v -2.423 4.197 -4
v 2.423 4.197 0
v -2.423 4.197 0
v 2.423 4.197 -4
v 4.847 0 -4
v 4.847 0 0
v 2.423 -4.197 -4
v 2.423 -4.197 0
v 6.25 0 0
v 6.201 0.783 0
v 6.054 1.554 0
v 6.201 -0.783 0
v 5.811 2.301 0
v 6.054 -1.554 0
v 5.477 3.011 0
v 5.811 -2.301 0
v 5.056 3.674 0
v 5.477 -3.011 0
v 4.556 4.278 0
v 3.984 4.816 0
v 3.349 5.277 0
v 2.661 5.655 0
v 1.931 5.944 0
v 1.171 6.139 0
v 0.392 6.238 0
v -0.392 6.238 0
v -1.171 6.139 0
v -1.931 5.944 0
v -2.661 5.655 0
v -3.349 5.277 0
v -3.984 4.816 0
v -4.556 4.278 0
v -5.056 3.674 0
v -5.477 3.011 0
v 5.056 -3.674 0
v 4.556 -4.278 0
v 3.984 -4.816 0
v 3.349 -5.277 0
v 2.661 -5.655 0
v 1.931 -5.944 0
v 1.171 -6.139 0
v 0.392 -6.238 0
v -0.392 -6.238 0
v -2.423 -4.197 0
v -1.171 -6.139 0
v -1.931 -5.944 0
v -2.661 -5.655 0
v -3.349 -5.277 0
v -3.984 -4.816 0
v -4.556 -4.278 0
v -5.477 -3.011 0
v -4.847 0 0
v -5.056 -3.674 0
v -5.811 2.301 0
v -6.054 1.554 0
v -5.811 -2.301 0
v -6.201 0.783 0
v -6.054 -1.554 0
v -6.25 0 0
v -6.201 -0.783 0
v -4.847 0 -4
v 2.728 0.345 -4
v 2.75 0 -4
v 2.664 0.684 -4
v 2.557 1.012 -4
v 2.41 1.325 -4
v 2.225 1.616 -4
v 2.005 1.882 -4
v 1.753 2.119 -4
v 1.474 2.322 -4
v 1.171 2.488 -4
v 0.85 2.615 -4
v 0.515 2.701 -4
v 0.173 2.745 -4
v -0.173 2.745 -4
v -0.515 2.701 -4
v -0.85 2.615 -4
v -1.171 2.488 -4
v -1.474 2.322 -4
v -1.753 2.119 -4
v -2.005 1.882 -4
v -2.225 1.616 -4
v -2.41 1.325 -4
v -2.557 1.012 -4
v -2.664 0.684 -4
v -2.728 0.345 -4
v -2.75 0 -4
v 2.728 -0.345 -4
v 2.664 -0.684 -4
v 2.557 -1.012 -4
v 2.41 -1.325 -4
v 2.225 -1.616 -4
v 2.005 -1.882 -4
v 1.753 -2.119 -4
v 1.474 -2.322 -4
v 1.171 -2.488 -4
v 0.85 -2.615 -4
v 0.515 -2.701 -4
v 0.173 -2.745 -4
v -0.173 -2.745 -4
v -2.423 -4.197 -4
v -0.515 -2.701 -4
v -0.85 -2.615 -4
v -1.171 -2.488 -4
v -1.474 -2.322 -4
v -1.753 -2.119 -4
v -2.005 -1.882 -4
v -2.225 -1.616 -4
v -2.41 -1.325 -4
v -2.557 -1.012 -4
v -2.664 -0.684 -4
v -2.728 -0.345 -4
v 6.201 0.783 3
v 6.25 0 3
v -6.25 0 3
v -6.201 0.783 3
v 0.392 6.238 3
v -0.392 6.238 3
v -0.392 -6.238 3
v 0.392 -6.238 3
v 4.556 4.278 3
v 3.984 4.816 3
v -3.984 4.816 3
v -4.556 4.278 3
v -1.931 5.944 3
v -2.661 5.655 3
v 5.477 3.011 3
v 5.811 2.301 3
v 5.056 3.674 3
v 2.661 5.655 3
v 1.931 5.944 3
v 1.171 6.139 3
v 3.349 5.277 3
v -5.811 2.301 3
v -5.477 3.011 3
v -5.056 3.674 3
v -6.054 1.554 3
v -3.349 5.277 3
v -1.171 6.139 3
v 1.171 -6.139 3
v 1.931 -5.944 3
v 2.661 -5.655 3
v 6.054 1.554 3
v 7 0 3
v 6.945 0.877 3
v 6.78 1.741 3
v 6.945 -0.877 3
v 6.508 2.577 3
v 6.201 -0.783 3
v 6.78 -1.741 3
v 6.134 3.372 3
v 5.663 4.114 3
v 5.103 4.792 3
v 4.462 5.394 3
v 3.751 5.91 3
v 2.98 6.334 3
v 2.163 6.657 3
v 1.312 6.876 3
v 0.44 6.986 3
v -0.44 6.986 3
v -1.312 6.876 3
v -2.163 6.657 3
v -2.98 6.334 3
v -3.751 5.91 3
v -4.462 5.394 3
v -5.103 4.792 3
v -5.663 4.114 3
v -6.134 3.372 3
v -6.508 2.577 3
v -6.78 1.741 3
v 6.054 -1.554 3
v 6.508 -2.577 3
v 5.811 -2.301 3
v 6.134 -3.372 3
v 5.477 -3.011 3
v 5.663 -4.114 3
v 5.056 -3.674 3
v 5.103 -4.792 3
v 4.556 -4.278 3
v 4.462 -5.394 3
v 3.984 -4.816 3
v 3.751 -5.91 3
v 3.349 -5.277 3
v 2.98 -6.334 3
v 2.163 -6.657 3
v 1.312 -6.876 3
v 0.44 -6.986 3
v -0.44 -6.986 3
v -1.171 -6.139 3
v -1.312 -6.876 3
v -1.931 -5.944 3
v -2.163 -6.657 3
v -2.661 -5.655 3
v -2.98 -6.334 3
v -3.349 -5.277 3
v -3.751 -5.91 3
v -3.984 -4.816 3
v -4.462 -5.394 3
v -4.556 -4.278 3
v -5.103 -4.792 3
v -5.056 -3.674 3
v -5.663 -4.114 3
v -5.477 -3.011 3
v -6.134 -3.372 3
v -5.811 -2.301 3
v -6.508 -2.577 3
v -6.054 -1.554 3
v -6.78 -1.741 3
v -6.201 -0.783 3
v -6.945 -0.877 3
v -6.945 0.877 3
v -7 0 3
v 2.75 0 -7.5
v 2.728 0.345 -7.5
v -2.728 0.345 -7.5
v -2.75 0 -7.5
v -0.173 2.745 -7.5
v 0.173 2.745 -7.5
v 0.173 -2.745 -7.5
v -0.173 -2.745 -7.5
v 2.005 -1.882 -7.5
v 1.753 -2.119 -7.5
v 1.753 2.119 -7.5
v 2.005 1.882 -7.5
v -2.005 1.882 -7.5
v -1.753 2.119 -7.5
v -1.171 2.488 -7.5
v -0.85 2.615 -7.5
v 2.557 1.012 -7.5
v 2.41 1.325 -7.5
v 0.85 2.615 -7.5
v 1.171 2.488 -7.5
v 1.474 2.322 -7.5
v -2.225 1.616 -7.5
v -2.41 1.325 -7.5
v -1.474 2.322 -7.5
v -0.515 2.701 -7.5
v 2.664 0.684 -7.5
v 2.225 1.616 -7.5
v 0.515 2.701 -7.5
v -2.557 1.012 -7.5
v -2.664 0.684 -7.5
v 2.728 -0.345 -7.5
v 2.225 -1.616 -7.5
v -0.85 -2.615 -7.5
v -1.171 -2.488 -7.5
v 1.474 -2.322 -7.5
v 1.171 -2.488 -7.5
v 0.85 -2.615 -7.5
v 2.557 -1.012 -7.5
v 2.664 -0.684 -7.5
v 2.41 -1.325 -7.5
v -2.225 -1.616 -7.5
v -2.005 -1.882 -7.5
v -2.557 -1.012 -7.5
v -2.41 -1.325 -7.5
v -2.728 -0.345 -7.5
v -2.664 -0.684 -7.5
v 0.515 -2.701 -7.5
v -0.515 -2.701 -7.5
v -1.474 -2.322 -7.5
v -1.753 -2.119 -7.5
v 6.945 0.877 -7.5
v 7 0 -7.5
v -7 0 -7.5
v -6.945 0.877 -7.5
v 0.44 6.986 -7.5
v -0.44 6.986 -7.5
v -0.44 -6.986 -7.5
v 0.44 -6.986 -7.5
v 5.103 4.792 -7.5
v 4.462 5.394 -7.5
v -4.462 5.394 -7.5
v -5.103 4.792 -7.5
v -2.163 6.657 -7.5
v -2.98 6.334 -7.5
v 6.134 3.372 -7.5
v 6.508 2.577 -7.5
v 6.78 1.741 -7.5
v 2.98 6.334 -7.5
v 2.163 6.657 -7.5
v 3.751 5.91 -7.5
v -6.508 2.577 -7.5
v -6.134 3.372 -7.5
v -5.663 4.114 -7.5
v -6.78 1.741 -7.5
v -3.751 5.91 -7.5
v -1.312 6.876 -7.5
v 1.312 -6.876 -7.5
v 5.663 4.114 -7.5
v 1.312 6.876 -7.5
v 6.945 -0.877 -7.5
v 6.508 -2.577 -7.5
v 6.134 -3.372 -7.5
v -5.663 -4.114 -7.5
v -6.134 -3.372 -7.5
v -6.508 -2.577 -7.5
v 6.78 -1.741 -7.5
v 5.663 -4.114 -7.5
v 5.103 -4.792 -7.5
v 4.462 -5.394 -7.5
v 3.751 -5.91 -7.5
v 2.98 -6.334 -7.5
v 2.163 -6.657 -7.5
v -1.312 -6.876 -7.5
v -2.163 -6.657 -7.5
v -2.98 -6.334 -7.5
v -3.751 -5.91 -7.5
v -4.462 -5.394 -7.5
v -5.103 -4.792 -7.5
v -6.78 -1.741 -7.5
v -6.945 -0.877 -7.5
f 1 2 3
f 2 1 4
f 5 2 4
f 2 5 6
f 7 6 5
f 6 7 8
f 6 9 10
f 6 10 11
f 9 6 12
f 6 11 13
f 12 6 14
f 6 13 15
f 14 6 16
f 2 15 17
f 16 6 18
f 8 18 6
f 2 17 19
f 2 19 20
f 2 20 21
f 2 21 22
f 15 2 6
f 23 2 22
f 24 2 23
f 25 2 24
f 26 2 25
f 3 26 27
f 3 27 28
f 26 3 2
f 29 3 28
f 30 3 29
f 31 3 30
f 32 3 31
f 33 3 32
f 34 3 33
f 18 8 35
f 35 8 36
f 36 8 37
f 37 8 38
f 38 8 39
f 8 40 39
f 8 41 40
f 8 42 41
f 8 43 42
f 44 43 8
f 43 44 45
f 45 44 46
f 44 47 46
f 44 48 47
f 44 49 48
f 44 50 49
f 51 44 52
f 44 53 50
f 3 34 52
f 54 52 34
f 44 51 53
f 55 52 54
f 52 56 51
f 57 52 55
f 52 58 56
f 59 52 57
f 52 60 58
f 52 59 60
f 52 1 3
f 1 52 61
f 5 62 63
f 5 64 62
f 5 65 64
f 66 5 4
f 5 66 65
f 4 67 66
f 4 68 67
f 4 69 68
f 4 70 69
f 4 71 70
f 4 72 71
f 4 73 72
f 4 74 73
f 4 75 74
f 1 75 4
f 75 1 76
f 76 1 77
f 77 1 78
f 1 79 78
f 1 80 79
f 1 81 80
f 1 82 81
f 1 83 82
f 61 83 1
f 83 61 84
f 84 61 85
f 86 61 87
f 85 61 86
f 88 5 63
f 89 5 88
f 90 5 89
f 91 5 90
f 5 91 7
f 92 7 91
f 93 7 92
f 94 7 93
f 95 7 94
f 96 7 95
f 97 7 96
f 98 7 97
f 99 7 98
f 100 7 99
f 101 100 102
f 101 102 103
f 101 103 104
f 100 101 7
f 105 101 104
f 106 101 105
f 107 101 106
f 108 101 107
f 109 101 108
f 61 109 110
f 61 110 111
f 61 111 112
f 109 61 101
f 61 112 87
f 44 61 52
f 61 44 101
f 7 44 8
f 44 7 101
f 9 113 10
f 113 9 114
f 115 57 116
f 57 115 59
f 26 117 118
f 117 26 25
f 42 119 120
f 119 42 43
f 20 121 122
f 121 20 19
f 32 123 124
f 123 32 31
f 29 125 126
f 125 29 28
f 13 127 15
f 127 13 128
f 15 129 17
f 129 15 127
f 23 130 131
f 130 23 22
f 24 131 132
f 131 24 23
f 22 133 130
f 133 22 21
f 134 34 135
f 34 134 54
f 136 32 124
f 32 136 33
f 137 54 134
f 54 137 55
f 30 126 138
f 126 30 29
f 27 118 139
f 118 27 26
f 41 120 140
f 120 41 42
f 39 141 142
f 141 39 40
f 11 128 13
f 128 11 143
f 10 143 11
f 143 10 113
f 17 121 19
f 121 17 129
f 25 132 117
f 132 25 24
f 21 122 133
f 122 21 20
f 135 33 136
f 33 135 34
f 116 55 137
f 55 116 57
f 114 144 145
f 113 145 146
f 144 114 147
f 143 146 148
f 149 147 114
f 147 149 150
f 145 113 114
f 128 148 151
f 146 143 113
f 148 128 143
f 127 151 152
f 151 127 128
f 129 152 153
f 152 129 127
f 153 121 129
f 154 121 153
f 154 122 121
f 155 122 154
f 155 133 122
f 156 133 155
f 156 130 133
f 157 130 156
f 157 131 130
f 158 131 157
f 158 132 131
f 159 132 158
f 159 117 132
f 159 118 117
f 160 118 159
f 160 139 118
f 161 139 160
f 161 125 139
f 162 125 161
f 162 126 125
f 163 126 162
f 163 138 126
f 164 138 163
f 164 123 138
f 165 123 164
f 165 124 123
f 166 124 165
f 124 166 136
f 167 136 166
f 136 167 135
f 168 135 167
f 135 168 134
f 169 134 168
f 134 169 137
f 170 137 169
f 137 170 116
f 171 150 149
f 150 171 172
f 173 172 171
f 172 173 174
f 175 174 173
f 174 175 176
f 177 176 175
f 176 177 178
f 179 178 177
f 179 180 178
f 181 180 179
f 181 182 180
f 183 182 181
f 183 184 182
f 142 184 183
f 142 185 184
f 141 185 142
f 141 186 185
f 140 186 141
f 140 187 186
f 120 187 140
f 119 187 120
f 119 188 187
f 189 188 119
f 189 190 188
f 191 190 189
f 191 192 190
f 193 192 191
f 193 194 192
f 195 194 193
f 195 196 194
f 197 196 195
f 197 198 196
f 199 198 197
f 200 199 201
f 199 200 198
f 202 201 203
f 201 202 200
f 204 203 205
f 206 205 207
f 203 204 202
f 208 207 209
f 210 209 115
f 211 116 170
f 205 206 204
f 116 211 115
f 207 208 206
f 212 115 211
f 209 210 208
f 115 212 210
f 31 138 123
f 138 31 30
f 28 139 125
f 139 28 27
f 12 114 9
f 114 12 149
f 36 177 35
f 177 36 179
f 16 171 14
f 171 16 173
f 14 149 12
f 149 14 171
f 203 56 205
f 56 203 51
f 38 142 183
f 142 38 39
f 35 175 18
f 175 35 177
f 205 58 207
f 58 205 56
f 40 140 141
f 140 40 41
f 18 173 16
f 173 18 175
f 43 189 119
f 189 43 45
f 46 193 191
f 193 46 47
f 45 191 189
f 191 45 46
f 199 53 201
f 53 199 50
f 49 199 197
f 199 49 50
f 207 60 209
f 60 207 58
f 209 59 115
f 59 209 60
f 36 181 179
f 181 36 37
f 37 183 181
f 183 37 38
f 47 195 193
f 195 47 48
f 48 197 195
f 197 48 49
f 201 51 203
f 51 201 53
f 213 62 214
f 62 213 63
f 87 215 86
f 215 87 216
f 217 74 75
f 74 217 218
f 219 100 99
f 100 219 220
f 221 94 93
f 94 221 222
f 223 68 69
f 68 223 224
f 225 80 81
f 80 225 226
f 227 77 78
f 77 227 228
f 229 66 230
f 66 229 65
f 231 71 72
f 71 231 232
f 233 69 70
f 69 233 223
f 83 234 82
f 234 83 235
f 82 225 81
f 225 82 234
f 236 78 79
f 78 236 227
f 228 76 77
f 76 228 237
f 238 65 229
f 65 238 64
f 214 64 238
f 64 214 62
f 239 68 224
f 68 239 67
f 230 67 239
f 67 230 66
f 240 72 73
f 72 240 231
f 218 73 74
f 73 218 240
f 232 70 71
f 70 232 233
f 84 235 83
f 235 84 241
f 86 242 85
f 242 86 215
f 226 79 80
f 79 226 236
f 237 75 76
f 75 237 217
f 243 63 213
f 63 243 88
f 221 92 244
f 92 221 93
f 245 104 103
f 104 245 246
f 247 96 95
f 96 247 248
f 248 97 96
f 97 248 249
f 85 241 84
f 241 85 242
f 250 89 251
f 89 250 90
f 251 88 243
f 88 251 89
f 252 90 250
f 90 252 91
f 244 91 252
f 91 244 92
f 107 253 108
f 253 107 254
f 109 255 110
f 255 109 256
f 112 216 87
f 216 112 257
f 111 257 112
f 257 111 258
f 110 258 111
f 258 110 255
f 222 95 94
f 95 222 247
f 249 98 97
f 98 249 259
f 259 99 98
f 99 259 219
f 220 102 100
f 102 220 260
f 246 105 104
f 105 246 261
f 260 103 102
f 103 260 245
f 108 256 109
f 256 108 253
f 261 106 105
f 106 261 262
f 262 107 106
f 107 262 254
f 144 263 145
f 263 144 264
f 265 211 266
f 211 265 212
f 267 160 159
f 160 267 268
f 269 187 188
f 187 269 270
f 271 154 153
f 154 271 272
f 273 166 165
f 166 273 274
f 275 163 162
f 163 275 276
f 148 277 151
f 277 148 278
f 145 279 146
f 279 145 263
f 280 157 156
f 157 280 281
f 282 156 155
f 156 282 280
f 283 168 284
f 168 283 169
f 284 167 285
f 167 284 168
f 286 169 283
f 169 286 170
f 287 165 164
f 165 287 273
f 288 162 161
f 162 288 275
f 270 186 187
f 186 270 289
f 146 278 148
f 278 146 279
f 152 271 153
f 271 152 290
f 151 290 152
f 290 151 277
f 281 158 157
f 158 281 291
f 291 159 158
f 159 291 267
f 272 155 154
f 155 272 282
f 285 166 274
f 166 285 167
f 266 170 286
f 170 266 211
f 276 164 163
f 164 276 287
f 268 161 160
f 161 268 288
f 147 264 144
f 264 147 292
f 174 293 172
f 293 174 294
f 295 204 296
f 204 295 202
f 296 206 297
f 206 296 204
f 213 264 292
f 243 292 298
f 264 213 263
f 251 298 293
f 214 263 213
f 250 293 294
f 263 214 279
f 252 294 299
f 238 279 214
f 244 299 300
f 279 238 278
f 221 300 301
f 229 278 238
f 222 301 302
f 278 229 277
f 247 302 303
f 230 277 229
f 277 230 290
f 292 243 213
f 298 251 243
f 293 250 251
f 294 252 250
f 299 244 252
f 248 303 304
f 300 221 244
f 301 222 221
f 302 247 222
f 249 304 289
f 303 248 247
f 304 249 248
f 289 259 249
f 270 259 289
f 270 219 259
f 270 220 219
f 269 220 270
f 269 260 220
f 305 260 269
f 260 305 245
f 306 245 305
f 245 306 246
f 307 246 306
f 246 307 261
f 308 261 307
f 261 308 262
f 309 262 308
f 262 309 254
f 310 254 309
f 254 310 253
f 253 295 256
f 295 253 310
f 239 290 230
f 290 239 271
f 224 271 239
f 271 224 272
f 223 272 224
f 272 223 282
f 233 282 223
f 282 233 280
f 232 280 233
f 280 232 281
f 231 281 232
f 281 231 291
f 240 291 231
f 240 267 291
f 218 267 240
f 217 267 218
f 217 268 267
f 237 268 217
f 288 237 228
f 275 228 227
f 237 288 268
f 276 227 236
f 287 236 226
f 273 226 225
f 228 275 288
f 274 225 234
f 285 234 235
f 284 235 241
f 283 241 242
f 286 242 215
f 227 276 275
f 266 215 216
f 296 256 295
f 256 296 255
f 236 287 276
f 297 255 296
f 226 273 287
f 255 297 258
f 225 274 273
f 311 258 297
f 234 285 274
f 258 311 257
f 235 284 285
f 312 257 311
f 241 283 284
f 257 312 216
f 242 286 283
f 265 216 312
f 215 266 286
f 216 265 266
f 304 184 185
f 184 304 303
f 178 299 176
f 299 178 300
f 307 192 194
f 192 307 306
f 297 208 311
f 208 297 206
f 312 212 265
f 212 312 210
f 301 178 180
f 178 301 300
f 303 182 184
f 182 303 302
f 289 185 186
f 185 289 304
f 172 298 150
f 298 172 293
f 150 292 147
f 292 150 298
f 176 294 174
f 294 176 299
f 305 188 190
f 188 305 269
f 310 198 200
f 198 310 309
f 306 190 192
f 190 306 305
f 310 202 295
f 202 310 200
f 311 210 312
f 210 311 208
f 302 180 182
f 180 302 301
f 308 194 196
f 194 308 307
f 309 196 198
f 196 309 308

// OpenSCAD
$fn = 50;

difference() {
	union() {
		translate(v = [0, 0, -7.5]) {
			cylinder(h = 10.5, r = 7.0);
		}
	}
	union() {
		translate(v = [0, 0, 0]) {
			rotate(a = [0, 0, 0]) {
				difference() {
					union() {
						translate(v = [0, 0, -4]) {
							linear_extrude(height = 4) {
								polygon(points = [[4.8468, 0.0], [2.4234000000000004, 4.197451927062417], [-2.423399999999999, 4.197451927062417], [-4.8468, 5.935618106107392e-16], [-2.423400000000002, -4.197451927062416], [2.423399999999997, -4.197451927062419]]);
							}
						}
					}
					union();
				}
			}
		}
		#cylinder(h = 3, r = 6.25);
		#translate(v = [0, 0, -100.0]) {
			cylinder(h = 200, r = 2.75);
		}
	}
}
